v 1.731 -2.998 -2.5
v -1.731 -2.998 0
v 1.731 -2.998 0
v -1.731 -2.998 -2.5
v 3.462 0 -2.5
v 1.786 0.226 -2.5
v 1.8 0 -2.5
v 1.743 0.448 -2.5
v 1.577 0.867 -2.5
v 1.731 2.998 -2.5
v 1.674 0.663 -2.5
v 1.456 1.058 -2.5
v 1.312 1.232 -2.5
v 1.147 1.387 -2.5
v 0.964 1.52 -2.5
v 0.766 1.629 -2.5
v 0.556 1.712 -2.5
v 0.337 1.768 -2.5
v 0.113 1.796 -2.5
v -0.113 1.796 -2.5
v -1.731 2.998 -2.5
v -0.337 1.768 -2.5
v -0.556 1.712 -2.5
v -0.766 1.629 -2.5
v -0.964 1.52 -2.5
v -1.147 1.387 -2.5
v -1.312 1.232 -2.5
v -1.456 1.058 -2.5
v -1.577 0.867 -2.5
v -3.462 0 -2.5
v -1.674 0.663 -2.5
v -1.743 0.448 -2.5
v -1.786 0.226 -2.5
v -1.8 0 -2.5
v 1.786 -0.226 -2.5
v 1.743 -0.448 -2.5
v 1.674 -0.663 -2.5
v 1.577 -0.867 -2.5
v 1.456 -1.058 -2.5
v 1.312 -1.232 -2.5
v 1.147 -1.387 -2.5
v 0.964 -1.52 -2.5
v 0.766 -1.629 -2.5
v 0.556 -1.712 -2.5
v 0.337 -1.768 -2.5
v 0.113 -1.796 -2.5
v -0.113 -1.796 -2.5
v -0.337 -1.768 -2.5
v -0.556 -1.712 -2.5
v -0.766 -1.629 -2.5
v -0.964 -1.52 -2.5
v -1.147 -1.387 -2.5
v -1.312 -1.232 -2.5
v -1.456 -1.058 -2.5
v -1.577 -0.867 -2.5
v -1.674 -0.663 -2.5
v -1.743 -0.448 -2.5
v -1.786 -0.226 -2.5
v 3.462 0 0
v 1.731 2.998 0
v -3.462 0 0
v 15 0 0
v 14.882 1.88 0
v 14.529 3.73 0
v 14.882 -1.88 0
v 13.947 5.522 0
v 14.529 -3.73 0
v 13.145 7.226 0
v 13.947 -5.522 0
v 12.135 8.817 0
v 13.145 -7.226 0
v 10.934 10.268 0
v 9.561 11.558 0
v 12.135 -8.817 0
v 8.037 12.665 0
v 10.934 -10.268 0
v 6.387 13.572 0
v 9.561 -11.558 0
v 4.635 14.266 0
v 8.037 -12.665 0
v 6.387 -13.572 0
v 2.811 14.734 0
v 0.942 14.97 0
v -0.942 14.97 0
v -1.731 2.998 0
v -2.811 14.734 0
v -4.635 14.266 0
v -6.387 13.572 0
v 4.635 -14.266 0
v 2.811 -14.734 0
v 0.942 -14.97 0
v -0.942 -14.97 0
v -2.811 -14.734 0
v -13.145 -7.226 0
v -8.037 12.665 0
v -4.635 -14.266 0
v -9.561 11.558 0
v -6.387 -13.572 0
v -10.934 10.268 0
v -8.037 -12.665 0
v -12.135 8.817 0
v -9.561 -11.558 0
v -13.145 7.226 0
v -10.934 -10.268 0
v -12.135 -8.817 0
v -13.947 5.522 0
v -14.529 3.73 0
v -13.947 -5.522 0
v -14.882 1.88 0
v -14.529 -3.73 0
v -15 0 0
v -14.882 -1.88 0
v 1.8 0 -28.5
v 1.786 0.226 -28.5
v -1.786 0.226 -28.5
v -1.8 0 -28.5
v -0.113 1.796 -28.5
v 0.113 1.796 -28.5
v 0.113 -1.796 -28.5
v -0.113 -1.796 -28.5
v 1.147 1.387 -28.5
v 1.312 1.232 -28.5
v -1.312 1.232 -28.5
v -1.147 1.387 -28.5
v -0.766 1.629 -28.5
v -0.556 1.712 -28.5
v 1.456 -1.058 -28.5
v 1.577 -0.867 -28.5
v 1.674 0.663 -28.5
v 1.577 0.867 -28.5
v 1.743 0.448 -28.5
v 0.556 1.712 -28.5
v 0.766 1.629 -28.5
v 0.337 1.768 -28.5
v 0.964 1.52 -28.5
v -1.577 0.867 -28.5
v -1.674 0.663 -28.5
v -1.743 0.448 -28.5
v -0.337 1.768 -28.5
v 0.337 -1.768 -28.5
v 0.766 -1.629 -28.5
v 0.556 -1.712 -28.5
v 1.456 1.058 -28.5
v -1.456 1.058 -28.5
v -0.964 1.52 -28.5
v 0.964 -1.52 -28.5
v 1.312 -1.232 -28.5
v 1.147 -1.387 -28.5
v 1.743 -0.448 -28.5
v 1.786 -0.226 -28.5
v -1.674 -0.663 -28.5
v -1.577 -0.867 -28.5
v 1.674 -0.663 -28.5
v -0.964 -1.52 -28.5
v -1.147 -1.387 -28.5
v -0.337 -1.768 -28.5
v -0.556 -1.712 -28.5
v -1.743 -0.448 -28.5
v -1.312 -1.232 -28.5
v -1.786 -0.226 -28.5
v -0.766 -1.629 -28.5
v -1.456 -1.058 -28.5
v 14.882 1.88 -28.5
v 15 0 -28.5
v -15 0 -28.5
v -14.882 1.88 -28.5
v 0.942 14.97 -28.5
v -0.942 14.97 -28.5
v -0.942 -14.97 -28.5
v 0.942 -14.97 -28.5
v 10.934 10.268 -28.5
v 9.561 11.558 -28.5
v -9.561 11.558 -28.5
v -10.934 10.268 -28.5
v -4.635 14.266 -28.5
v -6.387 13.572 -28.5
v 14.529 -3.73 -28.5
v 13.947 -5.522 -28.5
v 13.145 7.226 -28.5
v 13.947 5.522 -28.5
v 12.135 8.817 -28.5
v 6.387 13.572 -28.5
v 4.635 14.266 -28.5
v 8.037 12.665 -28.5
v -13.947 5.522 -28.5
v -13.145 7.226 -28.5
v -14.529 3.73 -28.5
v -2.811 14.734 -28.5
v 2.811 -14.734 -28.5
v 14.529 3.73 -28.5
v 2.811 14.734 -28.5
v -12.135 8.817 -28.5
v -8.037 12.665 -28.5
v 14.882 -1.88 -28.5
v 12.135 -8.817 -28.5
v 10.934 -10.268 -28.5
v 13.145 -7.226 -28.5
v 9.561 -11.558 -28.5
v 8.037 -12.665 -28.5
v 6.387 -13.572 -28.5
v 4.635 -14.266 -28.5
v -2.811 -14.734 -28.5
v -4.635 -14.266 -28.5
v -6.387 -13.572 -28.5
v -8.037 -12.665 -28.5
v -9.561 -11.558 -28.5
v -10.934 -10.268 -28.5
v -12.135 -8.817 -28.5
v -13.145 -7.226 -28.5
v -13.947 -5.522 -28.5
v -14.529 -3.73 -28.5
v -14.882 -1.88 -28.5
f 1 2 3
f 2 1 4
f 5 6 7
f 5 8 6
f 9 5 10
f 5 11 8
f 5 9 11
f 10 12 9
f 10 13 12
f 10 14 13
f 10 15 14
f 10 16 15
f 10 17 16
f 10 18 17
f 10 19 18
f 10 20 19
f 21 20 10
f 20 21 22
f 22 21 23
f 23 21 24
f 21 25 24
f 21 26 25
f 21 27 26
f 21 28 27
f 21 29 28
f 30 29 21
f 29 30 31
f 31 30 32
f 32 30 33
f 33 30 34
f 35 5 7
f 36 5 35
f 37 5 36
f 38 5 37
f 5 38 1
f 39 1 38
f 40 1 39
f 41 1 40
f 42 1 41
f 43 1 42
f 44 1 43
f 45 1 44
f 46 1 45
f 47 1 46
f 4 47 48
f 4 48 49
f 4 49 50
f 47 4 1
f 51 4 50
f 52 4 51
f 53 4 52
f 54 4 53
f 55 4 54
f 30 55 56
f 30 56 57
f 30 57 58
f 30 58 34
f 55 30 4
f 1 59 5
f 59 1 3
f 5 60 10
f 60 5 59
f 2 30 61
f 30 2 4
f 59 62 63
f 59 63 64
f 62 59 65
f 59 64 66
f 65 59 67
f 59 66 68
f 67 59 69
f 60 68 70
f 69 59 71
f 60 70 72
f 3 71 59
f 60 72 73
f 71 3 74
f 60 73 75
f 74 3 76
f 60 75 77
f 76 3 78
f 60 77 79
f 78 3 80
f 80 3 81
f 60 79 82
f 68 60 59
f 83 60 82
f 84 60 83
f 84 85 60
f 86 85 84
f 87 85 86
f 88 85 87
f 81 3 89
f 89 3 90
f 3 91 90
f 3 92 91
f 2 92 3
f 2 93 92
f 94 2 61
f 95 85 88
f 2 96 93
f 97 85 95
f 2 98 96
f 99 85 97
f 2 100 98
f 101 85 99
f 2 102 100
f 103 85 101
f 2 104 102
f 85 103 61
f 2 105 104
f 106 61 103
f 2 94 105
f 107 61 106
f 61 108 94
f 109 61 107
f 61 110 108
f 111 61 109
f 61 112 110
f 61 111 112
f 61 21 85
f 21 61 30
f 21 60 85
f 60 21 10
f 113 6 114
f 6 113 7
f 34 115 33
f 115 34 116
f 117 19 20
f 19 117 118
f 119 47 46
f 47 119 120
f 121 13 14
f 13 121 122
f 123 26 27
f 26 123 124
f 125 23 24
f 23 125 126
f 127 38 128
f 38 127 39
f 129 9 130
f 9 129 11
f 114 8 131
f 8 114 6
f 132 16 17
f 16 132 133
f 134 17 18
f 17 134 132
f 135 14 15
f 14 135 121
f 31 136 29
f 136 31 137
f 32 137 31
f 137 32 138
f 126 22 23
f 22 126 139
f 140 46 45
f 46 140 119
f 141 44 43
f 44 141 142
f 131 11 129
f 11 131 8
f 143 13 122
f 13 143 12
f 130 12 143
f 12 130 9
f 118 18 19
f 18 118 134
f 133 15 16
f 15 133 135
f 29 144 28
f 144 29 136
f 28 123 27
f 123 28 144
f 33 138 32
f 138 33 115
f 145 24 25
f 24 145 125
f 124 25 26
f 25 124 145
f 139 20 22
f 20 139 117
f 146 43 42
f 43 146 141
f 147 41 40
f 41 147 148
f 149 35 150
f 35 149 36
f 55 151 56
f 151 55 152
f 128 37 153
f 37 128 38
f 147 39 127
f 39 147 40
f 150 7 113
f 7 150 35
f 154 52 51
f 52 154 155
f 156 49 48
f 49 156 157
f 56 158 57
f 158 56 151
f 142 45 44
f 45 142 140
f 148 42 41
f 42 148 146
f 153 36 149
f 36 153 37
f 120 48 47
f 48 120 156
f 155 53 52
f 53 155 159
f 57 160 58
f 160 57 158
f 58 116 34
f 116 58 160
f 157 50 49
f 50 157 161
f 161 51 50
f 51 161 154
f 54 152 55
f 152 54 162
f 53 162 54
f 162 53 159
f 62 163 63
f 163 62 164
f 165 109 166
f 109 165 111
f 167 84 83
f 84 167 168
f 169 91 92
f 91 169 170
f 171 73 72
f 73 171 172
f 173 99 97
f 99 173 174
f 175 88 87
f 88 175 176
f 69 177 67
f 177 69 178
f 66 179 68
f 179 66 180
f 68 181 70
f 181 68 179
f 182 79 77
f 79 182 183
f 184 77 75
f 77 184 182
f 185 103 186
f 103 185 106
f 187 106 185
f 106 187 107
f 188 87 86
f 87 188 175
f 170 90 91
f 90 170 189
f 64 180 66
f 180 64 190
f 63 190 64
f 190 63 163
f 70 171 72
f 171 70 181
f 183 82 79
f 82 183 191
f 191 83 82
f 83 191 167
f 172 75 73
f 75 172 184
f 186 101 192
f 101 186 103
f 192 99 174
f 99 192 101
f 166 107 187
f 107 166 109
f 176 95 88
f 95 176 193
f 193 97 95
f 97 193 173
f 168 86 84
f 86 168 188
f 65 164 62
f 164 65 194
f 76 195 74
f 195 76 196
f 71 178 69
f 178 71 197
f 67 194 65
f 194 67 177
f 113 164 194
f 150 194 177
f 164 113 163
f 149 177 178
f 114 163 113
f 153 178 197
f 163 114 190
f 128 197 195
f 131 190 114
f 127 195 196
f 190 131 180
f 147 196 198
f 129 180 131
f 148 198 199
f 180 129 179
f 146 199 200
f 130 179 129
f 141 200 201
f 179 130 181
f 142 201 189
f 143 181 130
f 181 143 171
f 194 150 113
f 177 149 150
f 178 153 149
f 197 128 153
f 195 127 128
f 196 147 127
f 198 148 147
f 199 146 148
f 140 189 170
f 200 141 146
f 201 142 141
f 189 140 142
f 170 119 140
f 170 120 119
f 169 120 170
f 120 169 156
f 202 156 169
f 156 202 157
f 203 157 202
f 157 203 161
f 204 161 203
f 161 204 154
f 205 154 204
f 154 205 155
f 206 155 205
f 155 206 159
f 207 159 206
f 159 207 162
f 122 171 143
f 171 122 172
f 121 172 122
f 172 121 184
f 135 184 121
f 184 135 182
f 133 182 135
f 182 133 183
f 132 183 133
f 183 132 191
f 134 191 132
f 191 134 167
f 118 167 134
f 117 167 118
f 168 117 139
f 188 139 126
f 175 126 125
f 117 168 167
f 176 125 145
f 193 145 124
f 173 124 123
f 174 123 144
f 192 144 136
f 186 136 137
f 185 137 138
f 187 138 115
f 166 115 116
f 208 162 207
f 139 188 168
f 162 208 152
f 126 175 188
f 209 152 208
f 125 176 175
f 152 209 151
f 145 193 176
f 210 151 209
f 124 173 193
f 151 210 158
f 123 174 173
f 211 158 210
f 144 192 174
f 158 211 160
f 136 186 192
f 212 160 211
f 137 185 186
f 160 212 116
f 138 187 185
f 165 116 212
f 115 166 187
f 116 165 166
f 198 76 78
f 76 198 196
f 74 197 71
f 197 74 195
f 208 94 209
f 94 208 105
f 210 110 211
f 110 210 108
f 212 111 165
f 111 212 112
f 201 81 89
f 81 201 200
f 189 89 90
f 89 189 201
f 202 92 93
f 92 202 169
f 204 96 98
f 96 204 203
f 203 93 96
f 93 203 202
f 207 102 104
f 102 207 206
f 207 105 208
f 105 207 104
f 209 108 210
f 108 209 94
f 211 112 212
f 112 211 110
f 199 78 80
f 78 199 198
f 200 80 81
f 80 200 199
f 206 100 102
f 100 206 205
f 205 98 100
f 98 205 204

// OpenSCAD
$fn = 50;

difference() {
	union() {
		translate(v = [0, 0, -28.5]) {
			cylinder(h = 28.5, r = 15.0);
		}
	}
	union() {
		translate(v = [0, 0, 0]) {
			rotate(a = [0, 0, 0]) {
				difference() {
					union() {
						translate(v = [0, 0, -2.5]) {
							linear_extrude(height = 2.5) {
								polygon(points = [[3.4619999999999997, 0.0], [1.7310000000000003, 2.9981799479017264], [-1.7309999999999992, 2.9981799479017264], [-3.4619999999999997, 4.2397272186481365e-16], [-1.7310000000000014, -2.998179947901726], [1.7309999999999977, -2.9981799479017277]]);
							}
						}
					}
					union();
				}
			}
		}
		#translate(v = [0, 0, -100.0]) {
			cylinder(h = 200, r = 1.8);
		}
	}
}
